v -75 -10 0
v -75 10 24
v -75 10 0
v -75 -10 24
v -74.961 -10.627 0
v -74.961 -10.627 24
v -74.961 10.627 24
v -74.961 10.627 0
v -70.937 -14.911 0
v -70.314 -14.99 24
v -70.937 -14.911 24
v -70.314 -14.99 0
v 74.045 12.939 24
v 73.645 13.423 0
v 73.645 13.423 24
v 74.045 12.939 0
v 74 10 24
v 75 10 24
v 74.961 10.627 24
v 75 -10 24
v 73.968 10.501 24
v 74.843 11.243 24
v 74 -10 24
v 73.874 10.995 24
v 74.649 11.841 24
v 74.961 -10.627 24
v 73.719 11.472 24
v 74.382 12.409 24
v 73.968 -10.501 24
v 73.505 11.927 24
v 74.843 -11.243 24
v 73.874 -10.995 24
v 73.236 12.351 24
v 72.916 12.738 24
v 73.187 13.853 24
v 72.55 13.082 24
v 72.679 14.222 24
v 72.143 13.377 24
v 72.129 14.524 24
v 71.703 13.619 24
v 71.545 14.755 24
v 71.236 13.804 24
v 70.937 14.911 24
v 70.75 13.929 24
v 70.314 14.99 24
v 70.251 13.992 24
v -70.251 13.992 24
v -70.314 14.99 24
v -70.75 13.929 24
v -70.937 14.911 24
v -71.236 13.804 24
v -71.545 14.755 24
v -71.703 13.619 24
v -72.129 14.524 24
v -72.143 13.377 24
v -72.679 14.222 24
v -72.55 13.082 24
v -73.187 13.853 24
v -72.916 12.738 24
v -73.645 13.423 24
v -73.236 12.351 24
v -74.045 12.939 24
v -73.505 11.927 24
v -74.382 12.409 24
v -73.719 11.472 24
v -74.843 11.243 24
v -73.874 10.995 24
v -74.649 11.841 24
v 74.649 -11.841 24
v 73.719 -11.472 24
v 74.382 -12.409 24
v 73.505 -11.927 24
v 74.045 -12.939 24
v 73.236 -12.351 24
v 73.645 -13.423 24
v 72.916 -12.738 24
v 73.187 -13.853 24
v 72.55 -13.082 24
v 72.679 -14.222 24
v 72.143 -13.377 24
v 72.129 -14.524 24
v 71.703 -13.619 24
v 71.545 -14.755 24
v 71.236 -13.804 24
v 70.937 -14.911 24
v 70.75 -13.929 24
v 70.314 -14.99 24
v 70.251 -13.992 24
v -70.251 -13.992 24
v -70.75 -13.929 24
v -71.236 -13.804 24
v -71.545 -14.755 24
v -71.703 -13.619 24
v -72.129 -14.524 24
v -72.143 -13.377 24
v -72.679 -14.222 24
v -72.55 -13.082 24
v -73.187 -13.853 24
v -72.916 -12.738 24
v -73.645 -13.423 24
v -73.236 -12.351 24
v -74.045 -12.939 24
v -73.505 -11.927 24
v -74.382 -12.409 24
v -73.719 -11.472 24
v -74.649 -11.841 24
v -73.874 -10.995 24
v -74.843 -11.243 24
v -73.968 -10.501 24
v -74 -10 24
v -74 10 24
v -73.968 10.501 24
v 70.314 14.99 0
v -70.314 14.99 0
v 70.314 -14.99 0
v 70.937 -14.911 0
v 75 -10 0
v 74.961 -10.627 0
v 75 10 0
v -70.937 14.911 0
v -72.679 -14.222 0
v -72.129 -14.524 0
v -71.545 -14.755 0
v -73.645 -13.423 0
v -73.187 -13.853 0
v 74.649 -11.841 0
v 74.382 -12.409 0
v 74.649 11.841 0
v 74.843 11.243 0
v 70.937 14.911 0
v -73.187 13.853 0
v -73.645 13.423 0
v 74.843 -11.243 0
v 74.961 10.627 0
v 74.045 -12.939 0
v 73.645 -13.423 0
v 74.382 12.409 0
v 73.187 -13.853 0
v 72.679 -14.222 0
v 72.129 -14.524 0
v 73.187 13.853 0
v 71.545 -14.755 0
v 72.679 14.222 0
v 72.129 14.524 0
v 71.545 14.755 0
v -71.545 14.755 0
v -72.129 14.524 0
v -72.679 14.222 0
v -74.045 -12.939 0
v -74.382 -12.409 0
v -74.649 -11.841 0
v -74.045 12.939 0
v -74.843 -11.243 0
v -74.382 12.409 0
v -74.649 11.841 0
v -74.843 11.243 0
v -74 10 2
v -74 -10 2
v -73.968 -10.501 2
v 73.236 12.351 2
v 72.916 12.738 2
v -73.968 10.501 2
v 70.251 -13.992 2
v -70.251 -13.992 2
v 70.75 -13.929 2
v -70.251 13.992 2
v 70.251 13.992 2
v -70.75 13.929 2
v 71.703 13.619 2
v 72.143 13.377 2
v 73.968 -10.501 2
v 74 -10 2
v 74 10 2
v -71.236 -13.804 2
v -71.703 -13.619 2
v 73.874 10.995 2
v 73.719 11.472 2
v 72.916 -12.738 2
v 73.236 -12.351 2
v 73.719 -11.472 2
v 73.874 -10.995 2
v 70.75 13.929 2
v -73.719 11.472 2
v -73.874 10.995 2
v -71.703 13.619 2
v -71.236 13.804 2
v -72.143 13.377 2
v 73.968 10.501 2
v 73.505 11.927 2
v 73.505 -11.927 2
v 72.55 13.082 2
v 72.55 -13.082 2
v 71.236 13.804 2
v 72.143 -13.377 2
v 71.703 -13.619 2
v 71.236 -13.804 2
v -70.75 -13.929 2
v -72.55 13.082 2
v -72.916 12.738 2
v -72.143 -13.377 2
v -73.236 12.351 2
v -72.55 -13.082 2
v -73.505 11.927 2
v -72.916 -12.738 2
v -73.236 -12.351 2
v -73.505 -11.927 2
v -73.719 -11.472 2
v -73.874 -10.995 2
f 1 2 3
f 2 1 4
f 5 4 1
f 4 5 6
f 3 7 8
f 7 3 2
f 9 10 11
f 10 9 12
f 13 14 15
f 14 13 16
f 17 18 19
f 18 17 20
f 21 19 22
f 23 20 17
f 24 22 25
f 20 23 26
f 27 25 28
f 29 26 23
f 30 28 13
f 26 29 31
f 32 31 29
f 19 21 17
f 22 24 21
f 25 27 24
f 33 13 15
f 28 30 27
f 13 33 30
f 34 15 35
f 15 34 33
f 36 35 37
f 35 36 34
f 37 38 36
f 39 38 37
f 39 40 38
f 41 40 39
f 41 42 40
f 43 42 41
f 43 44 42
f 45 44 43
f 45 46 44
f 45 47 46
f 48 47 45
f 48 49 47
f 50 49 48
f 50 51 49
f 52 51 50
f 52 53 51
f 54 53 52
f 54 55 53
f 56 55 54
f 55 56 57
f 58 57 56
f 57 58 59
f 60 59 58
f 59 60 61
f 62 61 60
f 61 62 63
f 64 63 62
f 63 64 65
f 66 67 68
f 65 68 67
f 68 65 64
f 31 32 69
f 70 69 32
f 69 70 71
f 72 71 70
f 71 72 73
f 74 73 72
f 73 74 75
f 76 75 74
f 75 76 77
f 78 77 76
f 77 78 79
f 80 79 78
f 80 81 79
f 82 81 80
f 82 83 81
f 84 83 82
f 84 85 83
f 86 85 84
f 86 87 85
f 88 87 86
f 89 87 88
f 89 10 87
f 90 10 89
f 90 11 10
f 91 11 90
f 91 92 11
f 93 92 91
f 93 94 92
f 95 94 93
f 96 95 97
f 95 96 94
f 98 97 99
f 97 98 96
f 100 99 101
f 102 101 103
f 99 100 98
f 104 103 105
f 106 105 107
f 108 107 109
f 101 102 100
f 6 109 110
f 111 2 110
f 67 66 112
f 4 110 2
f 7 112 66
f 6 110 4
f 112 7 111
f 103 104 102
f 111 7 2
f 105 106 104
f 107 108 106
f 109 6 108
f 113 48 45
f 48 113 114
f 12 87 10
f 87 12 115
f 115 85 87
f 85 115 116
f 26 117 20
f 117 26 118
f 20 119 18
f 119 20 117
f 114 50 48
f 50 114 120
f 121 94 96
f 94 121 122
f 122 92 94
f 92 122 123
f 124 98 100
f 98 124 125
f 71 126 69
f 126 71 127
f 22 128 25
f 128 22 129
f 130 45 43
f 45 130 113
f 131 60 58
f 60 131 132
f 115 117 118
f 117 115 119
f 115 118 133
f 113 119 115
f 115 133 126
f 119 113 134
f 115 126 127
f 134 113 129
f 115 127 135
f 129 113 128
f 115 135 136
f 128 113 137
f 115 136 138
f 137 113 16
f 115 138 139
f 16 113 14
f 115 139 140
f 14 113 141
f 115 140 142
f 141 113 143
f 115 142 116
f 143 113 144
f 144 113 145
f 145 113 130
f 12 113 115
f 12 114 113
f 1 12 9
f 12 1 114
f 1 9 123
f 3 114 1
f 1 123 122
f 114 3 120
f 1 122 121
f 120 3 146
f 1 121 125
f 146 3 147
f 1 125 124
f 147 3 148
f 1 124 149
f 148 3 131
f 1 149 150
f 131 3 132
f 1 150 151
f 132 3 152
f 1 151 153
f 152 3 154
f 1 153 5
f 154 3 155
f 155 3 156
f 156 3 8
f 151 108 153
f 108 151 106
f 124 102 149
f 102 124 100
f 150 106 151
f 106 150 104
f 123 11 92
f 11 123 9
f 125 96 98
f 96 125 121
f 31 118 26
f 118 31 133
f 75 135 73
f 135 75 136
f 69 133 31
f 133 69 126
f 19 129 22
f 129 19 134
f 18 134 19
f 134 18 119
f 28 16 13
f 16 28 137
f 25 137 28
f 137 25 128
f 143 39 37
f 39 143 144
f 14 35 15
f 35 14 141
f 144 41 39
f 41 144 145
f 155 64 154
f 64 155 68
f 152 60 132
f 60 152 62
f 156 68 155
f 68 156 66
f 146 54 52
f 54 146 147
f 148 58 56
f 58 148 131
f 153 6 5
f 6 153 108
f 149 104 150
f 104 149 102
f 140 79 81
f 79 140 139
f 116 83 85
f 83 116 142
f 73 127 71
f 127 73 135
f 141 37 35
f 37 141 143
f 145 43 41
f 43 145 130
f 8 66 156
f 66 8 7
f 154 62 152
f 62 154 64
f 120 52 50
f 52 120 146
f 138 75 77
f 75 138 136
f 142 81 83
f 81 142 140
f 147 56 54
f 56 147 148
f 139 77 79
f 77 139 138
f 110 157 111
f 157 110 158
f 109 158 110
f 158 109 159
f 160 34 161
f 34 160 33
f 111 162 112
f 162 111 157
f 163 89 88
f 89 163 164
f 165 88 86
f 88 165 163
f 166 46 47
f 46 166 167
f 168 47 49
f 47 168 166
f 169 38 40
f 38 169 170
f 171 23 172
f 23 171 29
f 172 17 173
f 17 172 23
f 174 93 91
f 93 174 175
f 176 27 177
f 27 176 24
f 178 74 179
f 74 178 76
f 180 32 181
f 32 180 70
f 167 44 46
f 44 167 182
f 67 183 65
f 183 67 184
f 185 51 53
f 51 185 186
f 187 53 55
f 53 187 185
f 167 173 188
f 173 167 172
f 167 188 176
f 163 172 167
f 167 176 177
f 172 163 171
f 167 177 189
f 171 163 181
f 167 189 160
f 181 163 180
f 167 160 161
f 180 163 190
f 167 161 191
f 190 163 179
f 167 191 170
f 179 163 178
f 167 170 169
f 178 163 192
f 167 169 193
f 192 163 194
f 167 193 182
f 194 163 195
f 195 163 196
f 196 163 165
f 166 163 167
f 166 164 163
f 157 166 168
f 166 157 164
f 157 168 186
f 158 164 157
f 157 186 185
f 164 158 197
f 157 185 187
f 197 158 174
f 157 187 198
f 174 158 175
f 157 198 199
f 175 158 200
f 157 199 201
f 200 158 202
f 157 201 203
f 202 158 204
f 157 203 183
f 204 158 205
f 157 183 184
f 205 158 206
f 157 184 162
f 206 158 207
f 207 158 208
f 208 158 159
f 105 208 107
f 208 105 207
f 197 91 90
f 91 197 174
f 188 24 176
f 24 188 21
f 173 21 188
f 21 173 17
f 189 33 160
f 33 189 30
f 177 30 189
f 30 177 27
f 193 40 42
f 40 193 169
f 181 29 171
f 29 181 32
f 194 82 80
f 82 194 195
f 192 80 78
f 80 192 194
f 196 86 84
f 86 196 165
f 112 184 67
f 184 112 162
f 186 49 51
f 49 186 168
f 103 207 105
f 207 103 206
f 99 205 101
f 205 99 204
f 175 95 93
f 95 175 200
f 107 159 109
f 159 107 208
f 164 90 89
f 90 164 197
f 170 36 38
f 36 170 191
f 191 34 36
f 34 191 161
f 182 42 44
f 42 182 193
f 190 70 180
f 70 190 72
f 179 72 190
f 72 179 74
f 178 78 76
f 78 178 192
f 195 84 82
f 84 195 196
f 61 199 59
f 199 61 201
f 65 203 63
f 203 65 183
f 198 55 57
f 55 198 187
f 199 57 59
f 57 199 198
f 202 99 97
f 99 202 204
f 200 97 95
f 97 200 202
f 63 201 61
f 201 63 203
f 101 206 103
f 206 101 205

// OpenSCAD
$fn = 50;


difference() {
	union() {
		hull() {
			translate(v = [-70.0000000000, 10.0000000000, 0]) {
				cylinder(h = 24, r = 5);
			}
			translate(v = [70.0000000000, 10.0000000000, 0]) {
				cylinder(h = 24, r = 5);
			}
			translate(v = [-70.0000000000, -10.0000000000, 0]) {
				cylinder(h = 24, r = 5);
			}
			translate(v = [70.0000000000, -10.0000000000, 0]) {
				cylinder(h = 24, r = 5);
			}
		}
	}
	union() {
		translate(v = [0, 0, 2]) {
			hull() {
				translate(v = [-70.0000000000, 10.0000000000, 0]) {
					cylinder(h = 22, r = 4);
				}
				translate(v = [70.0000000000, 10.0000000000, 0]) {
					cylinder(h = 22, r = 4);
				}
				translate(v = [-70.0000000000, -10.0000000000, 0]) {
					cylinder(h = 22, r = 4);
				}
				translate(v = [70.0000000000, -10.0000000000, 0]) {
					cylinder(h = 22, r = 4);
				}
			}
		}
	}
}
